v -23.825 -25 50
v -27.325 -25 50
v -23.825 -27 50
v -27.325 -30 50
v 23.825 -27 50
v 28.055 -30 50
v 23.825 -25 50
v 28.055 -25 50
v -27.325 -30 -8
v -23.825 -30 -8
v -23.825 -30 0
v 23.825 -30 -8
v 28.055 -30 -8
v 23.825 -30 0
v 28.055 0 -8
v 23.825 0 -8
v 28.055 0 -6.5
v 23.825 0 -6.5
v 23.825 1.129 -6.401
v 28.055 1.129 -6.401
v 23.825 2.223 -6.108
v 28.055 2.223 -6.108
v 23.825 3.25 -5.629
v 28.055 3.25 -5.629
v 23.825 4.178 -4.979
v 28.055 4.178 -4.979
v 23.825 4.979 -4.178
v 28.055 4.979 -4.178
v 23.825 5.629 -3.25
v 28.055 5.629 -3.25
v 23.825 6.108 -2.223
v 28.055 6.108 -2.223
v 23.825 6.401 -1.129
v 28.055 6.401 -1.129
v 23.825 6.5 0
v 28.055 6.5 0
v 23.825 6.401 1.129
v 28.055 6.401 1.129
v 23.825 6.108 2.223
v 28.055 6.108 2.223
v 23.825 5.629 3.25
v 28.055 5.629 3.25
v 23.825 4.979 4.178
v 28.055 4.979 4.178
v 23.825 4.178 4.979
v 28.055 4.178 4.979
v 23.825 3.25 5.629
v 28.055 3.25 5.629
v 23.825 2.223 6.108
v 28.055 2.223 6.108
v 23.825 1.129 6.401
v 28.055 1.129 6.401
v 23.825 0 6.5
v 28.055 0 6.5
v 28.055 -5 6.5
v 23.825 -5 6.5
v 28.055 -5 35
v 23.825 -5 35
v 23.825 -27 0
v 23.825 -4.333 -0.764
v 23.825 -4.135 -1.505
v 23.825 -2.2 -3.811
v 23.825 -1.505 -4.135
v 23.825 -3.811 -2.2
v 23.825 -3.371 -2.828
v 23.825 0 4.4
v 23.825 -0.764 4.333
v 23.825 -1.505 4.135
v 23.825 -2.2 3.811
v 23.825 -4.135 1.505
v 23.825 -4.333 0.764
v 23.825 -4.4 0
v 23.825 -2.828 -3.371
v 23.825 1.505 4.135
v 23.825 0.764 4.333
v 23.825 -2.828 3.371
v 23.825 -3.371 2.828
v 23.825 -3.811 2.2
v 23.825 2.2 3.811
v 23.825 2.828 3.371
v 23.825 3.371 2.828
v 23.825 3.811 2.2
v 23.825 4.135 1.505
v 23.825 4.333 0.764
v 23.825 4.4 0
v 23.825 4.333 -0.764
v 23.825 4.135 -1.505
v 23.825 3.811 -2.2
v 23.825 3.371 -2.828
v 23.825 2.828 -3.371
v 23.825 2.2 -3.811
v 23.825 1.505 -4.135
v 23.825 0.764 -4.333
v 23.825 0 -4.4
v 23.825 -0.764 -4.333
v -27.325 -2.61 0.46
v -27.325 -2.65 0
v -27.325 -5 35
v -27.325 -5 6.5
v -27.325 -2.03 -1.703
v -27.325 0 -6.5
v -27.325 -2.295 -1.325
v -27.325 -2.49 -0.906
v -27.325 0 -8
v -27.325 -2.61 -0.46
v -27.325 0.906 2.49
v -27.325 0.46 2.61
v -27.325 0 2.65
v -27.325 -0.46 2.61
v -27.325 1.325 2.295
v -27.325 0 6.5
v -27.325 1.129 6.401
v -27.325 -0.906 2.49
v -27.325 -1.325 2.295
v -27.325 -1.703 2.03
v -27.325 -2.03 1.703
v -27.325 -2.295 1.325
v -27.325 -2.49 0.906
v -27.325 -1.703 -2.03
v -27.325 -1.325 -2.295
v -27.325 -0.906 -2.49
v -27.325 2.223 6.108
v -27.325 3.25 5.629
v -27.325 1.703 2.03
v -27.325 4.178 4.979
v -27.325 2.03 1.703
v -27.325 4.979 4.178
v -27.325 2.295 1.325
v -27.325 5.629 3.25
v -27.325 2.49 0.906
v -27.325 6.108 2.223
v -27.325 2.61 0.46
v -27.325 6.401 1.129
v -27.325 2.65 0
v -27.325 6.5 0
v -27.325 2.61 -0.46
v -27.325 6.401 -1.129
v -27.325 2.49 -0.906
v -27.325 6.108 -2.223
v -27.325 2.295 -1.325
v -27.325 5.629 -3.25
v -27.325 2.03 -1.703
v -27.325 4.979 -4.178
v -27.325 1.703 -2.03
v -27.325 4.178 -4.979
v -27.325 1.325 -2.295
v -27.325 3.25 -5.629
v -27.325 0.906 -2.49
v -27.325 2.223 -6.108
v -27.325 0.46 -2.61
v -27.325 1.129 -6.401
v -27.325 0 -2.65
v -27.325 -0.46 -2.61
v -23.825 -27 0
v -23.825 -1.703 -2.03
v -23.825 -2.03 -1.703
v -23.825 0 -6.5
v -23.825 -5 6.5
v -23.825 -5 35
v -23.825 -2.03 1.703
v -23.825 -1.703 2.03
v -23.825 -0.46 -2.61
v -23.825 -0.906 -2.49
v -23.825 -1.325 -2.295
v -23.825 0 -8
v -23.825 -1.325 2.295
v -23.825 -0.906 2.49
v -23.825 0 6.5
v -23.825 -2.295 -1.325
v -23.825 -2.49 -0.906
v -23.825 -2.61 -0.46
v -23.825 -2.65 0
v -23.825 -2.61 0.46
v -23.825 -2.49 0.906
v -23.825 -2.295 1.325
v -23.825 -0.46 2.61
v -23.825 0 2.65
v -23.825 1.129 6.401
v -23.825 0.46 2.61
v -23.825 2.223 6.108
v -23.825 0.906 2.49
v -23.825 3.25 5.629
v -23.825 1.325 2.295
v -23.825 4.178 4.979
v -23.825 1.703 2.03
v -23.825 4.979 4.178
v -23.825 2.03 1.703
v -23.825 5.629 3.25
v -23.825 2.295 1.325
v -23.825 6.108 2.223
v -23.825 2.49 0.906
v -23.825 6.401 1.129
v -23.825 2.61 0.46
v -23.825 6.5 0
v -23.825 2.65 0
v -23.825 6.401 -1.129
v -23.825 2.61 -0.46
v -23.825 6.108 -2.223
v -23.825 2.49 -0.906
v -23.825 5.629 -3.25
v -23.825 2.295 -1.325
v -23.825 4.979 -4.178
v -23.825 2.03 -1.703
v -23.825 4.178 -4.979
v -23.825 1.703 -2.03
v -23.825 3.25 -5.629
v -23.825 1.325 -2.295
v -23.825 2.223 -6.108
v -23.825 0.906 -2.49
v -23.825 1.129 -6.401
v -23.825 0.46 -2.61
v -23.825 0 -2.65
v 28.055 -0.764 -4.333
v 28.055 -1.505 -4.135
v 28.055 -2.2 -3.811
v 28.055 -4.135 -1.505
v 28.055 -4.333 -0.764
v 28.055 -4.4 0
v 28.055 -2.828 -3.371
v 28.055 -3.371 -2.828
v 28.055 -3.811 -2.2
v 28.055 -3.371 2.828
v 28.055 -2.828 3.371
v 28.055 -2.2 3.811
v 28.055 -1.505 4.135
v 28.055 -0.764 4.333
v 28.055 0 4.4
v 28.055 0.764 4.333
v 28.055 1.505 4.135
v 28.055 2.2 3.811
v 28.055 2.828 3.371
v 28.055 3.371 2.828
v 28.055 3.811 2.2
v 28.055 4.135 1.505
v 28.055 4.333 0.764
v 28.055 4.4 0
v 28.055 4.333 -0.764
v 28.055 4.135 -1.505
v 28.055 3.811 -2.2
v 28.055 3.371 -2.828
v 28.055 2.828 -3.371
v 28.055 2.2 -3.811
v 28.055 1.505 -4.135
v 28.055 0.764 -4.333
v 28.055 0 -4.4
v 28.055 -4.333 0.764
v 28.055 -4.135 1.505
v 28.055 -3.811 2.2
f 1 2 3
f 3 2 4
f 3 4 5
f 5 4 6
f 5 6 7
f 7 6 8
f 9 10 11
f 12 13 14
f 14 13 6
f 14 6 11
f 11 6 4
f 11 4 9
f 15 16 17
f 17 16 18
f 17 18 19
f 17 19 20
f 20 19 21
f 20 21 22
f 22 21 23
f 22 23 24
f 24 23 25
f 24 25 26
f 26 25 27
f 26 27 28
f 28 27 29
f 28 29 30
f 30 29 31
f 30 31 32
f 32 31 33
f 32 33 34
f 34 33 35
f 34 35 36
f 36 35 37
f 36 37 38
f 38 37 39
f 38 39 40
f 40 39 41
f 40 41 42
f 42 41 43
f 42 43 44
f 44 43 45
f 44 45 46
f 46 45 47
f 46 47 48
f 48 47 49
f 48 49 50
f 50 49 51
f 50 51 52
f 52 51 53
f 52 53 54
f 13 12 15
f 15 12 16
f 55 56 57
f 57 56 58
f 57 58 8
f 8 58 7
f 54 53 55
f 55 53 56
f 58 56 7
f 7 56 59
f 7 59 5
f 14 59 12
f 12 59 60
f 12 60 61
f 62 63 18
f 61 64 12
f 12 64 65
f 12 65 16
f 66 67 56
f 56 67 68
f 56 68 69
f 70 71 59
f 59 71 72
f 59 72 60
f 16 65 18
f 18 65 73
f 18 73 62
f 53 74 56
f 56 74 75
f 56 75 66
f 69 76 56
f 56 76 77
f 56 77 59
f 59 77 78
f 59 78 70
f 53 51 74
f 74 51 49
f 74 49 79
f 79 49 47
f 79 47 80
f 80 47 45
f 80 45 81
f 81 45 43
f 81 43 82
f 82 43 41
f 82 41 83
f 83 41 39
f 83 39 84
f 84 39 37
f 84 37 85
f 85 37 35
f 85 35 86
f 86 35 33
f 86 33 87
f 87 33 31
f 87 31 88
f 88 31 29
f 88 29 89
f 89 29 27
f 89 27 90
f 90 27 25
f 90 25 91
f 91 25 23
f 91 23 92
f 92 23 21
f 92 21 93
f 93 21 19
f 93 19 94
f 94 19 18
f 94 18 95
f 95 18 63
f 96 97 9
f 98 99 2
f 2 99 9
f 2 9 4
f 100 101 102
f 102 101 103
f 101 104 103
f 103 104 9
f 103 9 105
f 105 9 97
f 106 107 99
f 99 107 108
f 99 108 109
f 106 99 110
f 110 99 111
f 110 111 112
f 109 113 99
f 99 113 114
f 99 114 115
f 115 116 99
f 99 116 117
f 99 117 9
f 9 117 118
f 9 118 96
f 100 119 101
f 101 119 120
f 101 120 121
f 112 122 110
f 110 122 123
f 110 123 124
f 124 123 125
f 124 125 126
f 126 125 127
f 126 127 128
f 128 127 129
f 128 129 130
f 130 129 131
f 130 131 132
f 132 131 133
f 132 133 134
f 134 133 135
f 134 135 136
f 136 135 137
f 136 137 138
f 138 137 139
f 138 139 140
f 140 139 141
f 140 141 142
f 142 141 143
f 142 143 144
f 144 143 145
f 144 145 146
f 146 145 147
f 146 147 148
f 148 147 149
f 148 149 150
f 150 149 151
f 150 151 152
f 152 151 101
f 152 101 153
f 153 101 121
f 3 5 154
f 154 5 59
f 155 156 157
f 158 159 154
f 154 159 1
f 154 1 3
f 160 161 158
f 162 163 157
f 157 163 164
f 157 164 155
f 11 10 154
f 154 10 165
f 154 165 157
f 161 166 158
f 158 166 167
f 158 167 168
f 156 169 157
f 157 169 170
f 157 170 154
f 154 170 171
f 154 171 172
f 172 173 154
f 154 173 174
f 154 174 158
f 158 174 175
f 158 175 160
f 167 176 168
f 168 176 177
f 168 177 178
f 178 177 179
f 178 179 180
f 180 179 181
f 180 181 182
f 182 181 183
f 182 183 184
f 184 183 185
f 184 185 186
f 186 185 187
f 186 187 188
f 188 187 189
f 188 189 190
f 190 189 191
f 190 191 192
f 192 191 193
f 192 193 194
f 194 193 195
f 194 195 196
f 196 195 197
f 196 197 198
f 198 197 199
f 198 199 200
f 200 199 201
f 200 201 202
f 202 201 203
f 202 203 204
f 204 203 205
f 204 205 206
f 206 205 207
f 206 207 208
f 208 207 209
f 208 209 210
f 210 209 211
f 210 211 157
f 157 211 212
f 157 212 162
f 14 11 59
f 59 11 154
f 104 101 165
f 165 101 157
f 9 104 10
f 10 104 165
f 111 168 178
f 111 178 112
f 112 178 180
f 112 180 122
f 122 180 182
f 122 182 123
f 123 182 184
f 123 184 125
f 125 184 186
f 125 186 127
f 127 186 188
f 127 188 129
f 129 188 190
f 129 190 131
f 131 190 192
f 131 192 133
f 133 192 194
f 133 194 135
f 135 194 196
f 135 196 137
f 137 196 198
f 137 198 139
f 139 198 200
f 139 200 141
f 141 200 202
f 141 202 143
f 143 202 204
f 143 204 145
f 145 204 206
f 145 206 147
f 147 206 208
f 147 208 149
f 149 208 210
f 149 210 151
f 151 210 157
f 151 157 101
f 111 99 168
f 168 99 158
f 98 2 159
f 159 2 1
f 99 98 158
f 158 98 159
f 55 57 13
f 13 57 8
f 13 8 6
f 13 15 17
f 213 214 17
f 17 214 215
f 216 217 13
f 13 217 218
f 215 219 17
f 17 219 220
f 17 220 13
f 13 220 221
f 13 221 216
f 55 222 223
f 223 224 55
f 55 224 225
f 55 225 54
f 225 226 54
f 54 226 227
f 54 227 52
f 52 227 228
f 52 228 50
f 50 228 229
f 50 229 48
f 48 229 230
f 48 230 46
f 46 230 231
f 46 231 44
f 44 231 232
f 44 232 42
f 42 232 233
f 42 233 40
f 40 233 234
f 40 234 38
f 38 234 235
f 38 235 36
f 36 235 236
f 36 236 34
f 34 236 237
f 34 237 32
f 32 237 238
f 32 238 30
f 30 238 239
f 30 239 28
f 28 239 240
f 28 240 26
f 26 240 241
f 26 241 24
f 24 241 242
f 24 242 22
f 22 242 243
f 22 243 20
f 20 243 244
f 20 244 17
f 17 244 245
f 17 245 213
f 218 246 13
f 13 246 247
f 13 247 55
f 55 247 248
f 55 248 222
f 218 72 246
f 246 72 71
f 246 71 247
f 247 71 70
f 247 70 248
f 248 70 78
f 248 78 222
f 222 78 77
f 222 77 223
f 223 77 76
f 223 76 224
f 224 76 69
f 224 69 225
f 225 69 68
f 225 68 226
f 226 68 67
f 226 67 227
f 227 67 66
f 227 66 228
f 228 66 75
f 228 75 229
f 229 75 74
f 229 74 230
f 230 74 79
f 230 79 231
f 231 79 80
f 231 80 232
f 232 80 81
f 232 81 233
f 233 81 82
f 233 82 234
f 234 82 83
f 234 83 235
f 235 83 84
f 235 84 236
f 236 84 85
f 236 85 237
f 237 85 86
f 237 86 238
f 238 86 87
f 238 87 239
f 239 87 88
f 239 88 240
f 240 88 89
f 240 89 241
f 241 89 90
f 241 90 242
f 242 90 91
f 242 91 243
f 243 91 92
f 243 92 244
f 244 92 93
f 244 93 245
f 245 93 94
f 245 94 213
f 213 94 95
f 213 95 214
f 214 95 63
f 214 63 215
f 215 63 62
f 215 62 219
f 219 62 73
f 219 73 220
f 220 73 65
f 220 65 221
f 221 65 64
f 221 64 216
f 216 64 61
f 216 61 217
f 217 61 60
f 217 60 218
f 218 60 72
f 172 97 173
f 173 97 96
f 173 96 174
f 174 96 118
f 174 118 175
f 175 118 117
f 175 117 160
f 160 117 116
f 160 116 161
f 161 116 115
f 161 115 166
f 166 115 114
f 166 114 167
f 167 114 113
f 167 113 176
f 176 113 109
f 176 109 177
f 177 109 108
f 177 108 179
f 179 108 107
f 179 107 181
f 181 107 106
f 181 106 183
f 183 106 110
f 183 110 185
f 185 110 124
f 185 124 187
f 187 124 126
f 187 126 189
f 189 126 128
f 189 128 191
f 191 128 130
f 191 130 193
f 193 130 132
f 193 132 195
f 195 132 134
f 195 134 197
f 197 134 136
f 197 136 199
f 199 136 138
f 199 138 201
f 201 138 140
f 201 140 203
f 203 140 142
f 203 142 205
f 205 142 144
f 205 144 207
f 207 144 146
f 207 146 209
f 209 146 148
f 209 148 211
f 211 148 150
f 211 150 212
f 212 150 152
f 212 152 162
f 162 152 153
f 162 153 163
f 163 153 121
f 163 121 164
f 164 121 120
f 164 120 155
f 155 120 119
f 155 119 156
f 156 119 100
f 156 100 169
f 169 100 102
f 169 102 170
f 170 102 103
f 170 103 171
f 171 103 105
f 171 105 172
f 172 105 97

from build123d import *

# Parameters (mm, degrees)
SKETCH1_W               = 3.5
SKETCH1_H               = 30
SKETCH1_W_2             = 23.825
SKETCH1_H_2             = 3
BOSS_EXTRUDE1_DEPTH     = 50
BOSS_EXTRUDE2_DEPTH     = 3.5
CUT_EXTRUDE1_START      = -28.325
SKETCH3_R               = 1.5
CUT_EXTRUDE1_DEPTH      = 29.325
SKETCH4_R               = 2.5
CUT_EXTRUDE2_DEPTH      = 1
CUT_EXTRUDE2_DEPTH_BACK = 3.15
SKETCH5_R               = 2.9
CUT_EXTRUDE3_DEPTH      = 7.15
CUT_EXTRUDE4_DEPTH      = 7.15
SKETCH7_R               = 2.5
SKETCH7_R_2             = 1.5
BOSS_EXTRUDE3_DEPTH     = 0.65
SKETCH9_R               = 6.5
CUT_EXTRUDE5_DEPTH      = 0.4
SKETCH12_R              = 4.4
BOSS_EXTRUDE4_DEPTH     = 1.13
SKETCH13_R              = 2.5
SKETCH13_R_2            = 1.5
BOSS_EXTRUDE5_DEPTH     = 2.5
SKETCH14_R              = 2.65
CUT_EXTRUDE7_DEPTH      = 5.05
SKETCH10_R              = 4.4
CUT_EXTRUDE8_DEPTH      = 10
CUT_EXTRUDE8_DEPTH_BACK = 10


with BuildPart() as part:
    # Sketch1 → Boss-Extrude1 (new body)
    with BuildSketch(Plane.XY):
        with Locations((-25.575, -15)):
            Rectangle(SKETCH1_W, SKETCH1_H)
        with Locations((-11.9125, -28.5)):
            Rectangle(SKETCH1_W_2, SKETCH1_H_2)
    boss_extrude1 = extrude(amount=BOSS_EXTRUDE1_DEPTH)

    # Sketch2 → Boss-Extrude2 (add)
    with BuildSketch(Plane(origin=(-23.825, 0, 0), x_dir=(0, 0, -1), z_dir=(1, 0, 0))):
        with BuildLine():
            Line((8, 0), (6.5, 0))
            ThreePointArc((6.5, 0), (4.596194078, -4.596194078), (0, -6.5))
            Line((0, -6.5), (0, -27))
            Line((0, -27), (0, -30))
            Line((0, -30), (8, -30))
            Line((8, -30), (8, 0))
        make_face()
        with BuildLine():
            Line((6.5, 0), (1.5, 0))
            ThreePointArc((1.5, 0), (1.060660172, -1.060660172), (0, -1.5))
            Line((0, -1.5), (0, -6.5))
            ThreePointArc((0, -6.5), (4.596194078, -4.596194078), (6.5, 0))
        make_face()
        with BuildLine():
            ThreePointArc((-1.5, 0), (0, 1.5), (1.5, 0))
            Line((1.5, 0), (6.5, 0))
            ThreePointArc((6.5, 0), (0, 6.5), (-6.5, 0))
            Line((-6.5, 0), (-1.5, 0))
        make_face()
    boss_extrude2 = extrude(amount=-BOSS_EXTRUDE2_DEPTH)

    # Sketch3 → Cut-Extrude1 (cut)
    with BuildSketch(Plane.ZY.offset(27.325).offset(CUT_EXTRUDE1_START)):
        Circle(SKETCH3_R)
    cut_extrude1 = extrude(amount=CUT_EXTRUDE1_DEPTH, mode=Mode.SUBTRACT)

    # Mirror1: Boss-Extrude1, Boss-Extrude2, Cut-Extrude1 across plane
    add(boss_extrude1.mirror(Plane(origin=(0, 0, 50), x_dir=(0, 0, 1), z_dir=(-1, 0, 0))))
    add(boss_extrude2.mirror(Plane(origin=(0, 0, 50), x_dir=(0, 0, 1), z_dir=(-1, 0, 0))))
    add(cut_extrude1.mirror(Plane(origin=(0, 0, 50), x_dir=(0, 0, 1), z_dir=(-1, 0, 0))), mode=Mode.SUBTRACT)

    # Sketch4 → Cut-Extrude2 (cut, two sides)
    with BuildSketch(Plane.ZY.offset(27.325)) as cut_extrude2_sk:
        Circle(SKETCH4_R)
    extrude(amount=CUT_EXTRUDE2_DEPTH, mode=Mode.SUBTRACT)
    extrude(cut_extrude2_sk.sketch, amount=-CUT_EXTRUDE2_DEPTH_BACK, mode=Mode.SUBTRACT)

    # Sketch5 → Cut-Extrude3 (cut)
    with BuildSketch(Plane(origin=(27.325, 0, 0), x_dir=(0, 0, -1), z_dir=(1, 0, 0))):
        Circle(SKETCH5_R)
    extrude(amount=-CUT_EXTRUDE3_DEPTH, mode=Mode.SUBTRACT)

    # Sketch6 → Cut-Extrude4 (cut)
    with BuildSketch(Plane.ZY.offset(27.325)):
        Polygon((50, 0), (50, -25), (35, -5), (6.5, -5), (6.5, 0), align=None)
    cut_extrude4 = extrude(amount=-CUT_EXTRUDE4_DEPTH, mode=Mode.SUBTRACT)

    # Mirror2: Cut-Extrude4 across plane
    add(cut_extrude4.mirror(Plane(origin=(0, 0, 0), x_dir=(0, 0, 1), z_dir=(1, 0, 0))), mode=Mode.SUBTRACT)

    # Sketch7 → Boss-Extrude3 (add)
    with BuildSketch(Plane.ZY.offset(24.175)):
        Circle(SKETCH7_R)
        Circle(SKETCH7_R_2, mode=Mode.SUBTRACT)
    extrude(amount=BOSS_EXTRUDE3_DEPTH)

    # Sketch9 → Cut-Extrude5 (cut)
    with BuildSketch(Plane(origin=(27.325, 0, 0), x_dir=(0, 0, -1), z_dir=(1, 0, 0))):
        Circle(SKETCH9_R)
        Polygon((8, 0), (-6.5, 0), (-6.5, -3.791432832), (-52.61721684, -3.791432832), (-52.61721684, -30), (-6.5, -30), (8, -30), align=None)
    extrude(amount=-CUT_EXTRUDE5_DEPTH, mode=Mode.SUBTRACT)

    # Sketch12 → Boss-Extrude4 (add)
    with BuildSketch(Plane(origin=(26.925, 0, 0), x_dir=(0, 0, -1), z_dir=(1, 0, 0))):
        with BuildLine():
            Line((8, 0), (6.5, 0))
            ThreePointArc((6.5, 0), (0, 6.5), (-6.5, 0))
            Line((-6.5, 0), (-6.5, -5))
            Line((-6.5, -5), (-35, -5))
            Line((-35, -5), (-50, -25))
            Line((-50, -25), (-50, -30))
            Line((-50, -30), (8, -30))
            Line((8, -30), (8, 0))
        make_face()
        Circle(SKETCH12_R, mode=Mode.SUBTRACT)
    extrude(amount=BOSS_EXTRUDE4_DEPTH)

    # Sketch13 → Boss-Extrude5 (add)
    with BuildSketch(Plane.ZY.offset(27.325)):
        Circle(SKETCH13_R)
        Circle(SKETCH13_R_2, mode=Mode.SUBTRACT)
    extrude(amount=-BOSS_EXTRUDE5_DEPTH)

    # Sketch14 → Cut-Extrude7 (cut)
    with BuildSketch(Plane.ZY.offset(27.325)):
        Circle(SKETCH14_R)
    extrude(amount=-CUT_EXTRUDE7_DEPTH, mode=Mode.SUBTRACT)

    # Sketch10 → Cut-Extrude8 (cut, two sides)
    with BuildSketch(Plane(origin=(26.925, 0, 0), x_dir=(0, 0, -1), z_dir=(1, 0, 0))) as cut_extrude8_sk:
        Circle(SKETCH10_R)
    extrude(amount=CUT_EXTRUDE8_DEPTH, mode=Mode.SUBTRACT)
    extrude(cut_extrude8_sk.sketch, amount=-CUT_EXTRUDE8_DEPTH_BACK, mode=Mode.SUBTRACT)


solid = part.part
